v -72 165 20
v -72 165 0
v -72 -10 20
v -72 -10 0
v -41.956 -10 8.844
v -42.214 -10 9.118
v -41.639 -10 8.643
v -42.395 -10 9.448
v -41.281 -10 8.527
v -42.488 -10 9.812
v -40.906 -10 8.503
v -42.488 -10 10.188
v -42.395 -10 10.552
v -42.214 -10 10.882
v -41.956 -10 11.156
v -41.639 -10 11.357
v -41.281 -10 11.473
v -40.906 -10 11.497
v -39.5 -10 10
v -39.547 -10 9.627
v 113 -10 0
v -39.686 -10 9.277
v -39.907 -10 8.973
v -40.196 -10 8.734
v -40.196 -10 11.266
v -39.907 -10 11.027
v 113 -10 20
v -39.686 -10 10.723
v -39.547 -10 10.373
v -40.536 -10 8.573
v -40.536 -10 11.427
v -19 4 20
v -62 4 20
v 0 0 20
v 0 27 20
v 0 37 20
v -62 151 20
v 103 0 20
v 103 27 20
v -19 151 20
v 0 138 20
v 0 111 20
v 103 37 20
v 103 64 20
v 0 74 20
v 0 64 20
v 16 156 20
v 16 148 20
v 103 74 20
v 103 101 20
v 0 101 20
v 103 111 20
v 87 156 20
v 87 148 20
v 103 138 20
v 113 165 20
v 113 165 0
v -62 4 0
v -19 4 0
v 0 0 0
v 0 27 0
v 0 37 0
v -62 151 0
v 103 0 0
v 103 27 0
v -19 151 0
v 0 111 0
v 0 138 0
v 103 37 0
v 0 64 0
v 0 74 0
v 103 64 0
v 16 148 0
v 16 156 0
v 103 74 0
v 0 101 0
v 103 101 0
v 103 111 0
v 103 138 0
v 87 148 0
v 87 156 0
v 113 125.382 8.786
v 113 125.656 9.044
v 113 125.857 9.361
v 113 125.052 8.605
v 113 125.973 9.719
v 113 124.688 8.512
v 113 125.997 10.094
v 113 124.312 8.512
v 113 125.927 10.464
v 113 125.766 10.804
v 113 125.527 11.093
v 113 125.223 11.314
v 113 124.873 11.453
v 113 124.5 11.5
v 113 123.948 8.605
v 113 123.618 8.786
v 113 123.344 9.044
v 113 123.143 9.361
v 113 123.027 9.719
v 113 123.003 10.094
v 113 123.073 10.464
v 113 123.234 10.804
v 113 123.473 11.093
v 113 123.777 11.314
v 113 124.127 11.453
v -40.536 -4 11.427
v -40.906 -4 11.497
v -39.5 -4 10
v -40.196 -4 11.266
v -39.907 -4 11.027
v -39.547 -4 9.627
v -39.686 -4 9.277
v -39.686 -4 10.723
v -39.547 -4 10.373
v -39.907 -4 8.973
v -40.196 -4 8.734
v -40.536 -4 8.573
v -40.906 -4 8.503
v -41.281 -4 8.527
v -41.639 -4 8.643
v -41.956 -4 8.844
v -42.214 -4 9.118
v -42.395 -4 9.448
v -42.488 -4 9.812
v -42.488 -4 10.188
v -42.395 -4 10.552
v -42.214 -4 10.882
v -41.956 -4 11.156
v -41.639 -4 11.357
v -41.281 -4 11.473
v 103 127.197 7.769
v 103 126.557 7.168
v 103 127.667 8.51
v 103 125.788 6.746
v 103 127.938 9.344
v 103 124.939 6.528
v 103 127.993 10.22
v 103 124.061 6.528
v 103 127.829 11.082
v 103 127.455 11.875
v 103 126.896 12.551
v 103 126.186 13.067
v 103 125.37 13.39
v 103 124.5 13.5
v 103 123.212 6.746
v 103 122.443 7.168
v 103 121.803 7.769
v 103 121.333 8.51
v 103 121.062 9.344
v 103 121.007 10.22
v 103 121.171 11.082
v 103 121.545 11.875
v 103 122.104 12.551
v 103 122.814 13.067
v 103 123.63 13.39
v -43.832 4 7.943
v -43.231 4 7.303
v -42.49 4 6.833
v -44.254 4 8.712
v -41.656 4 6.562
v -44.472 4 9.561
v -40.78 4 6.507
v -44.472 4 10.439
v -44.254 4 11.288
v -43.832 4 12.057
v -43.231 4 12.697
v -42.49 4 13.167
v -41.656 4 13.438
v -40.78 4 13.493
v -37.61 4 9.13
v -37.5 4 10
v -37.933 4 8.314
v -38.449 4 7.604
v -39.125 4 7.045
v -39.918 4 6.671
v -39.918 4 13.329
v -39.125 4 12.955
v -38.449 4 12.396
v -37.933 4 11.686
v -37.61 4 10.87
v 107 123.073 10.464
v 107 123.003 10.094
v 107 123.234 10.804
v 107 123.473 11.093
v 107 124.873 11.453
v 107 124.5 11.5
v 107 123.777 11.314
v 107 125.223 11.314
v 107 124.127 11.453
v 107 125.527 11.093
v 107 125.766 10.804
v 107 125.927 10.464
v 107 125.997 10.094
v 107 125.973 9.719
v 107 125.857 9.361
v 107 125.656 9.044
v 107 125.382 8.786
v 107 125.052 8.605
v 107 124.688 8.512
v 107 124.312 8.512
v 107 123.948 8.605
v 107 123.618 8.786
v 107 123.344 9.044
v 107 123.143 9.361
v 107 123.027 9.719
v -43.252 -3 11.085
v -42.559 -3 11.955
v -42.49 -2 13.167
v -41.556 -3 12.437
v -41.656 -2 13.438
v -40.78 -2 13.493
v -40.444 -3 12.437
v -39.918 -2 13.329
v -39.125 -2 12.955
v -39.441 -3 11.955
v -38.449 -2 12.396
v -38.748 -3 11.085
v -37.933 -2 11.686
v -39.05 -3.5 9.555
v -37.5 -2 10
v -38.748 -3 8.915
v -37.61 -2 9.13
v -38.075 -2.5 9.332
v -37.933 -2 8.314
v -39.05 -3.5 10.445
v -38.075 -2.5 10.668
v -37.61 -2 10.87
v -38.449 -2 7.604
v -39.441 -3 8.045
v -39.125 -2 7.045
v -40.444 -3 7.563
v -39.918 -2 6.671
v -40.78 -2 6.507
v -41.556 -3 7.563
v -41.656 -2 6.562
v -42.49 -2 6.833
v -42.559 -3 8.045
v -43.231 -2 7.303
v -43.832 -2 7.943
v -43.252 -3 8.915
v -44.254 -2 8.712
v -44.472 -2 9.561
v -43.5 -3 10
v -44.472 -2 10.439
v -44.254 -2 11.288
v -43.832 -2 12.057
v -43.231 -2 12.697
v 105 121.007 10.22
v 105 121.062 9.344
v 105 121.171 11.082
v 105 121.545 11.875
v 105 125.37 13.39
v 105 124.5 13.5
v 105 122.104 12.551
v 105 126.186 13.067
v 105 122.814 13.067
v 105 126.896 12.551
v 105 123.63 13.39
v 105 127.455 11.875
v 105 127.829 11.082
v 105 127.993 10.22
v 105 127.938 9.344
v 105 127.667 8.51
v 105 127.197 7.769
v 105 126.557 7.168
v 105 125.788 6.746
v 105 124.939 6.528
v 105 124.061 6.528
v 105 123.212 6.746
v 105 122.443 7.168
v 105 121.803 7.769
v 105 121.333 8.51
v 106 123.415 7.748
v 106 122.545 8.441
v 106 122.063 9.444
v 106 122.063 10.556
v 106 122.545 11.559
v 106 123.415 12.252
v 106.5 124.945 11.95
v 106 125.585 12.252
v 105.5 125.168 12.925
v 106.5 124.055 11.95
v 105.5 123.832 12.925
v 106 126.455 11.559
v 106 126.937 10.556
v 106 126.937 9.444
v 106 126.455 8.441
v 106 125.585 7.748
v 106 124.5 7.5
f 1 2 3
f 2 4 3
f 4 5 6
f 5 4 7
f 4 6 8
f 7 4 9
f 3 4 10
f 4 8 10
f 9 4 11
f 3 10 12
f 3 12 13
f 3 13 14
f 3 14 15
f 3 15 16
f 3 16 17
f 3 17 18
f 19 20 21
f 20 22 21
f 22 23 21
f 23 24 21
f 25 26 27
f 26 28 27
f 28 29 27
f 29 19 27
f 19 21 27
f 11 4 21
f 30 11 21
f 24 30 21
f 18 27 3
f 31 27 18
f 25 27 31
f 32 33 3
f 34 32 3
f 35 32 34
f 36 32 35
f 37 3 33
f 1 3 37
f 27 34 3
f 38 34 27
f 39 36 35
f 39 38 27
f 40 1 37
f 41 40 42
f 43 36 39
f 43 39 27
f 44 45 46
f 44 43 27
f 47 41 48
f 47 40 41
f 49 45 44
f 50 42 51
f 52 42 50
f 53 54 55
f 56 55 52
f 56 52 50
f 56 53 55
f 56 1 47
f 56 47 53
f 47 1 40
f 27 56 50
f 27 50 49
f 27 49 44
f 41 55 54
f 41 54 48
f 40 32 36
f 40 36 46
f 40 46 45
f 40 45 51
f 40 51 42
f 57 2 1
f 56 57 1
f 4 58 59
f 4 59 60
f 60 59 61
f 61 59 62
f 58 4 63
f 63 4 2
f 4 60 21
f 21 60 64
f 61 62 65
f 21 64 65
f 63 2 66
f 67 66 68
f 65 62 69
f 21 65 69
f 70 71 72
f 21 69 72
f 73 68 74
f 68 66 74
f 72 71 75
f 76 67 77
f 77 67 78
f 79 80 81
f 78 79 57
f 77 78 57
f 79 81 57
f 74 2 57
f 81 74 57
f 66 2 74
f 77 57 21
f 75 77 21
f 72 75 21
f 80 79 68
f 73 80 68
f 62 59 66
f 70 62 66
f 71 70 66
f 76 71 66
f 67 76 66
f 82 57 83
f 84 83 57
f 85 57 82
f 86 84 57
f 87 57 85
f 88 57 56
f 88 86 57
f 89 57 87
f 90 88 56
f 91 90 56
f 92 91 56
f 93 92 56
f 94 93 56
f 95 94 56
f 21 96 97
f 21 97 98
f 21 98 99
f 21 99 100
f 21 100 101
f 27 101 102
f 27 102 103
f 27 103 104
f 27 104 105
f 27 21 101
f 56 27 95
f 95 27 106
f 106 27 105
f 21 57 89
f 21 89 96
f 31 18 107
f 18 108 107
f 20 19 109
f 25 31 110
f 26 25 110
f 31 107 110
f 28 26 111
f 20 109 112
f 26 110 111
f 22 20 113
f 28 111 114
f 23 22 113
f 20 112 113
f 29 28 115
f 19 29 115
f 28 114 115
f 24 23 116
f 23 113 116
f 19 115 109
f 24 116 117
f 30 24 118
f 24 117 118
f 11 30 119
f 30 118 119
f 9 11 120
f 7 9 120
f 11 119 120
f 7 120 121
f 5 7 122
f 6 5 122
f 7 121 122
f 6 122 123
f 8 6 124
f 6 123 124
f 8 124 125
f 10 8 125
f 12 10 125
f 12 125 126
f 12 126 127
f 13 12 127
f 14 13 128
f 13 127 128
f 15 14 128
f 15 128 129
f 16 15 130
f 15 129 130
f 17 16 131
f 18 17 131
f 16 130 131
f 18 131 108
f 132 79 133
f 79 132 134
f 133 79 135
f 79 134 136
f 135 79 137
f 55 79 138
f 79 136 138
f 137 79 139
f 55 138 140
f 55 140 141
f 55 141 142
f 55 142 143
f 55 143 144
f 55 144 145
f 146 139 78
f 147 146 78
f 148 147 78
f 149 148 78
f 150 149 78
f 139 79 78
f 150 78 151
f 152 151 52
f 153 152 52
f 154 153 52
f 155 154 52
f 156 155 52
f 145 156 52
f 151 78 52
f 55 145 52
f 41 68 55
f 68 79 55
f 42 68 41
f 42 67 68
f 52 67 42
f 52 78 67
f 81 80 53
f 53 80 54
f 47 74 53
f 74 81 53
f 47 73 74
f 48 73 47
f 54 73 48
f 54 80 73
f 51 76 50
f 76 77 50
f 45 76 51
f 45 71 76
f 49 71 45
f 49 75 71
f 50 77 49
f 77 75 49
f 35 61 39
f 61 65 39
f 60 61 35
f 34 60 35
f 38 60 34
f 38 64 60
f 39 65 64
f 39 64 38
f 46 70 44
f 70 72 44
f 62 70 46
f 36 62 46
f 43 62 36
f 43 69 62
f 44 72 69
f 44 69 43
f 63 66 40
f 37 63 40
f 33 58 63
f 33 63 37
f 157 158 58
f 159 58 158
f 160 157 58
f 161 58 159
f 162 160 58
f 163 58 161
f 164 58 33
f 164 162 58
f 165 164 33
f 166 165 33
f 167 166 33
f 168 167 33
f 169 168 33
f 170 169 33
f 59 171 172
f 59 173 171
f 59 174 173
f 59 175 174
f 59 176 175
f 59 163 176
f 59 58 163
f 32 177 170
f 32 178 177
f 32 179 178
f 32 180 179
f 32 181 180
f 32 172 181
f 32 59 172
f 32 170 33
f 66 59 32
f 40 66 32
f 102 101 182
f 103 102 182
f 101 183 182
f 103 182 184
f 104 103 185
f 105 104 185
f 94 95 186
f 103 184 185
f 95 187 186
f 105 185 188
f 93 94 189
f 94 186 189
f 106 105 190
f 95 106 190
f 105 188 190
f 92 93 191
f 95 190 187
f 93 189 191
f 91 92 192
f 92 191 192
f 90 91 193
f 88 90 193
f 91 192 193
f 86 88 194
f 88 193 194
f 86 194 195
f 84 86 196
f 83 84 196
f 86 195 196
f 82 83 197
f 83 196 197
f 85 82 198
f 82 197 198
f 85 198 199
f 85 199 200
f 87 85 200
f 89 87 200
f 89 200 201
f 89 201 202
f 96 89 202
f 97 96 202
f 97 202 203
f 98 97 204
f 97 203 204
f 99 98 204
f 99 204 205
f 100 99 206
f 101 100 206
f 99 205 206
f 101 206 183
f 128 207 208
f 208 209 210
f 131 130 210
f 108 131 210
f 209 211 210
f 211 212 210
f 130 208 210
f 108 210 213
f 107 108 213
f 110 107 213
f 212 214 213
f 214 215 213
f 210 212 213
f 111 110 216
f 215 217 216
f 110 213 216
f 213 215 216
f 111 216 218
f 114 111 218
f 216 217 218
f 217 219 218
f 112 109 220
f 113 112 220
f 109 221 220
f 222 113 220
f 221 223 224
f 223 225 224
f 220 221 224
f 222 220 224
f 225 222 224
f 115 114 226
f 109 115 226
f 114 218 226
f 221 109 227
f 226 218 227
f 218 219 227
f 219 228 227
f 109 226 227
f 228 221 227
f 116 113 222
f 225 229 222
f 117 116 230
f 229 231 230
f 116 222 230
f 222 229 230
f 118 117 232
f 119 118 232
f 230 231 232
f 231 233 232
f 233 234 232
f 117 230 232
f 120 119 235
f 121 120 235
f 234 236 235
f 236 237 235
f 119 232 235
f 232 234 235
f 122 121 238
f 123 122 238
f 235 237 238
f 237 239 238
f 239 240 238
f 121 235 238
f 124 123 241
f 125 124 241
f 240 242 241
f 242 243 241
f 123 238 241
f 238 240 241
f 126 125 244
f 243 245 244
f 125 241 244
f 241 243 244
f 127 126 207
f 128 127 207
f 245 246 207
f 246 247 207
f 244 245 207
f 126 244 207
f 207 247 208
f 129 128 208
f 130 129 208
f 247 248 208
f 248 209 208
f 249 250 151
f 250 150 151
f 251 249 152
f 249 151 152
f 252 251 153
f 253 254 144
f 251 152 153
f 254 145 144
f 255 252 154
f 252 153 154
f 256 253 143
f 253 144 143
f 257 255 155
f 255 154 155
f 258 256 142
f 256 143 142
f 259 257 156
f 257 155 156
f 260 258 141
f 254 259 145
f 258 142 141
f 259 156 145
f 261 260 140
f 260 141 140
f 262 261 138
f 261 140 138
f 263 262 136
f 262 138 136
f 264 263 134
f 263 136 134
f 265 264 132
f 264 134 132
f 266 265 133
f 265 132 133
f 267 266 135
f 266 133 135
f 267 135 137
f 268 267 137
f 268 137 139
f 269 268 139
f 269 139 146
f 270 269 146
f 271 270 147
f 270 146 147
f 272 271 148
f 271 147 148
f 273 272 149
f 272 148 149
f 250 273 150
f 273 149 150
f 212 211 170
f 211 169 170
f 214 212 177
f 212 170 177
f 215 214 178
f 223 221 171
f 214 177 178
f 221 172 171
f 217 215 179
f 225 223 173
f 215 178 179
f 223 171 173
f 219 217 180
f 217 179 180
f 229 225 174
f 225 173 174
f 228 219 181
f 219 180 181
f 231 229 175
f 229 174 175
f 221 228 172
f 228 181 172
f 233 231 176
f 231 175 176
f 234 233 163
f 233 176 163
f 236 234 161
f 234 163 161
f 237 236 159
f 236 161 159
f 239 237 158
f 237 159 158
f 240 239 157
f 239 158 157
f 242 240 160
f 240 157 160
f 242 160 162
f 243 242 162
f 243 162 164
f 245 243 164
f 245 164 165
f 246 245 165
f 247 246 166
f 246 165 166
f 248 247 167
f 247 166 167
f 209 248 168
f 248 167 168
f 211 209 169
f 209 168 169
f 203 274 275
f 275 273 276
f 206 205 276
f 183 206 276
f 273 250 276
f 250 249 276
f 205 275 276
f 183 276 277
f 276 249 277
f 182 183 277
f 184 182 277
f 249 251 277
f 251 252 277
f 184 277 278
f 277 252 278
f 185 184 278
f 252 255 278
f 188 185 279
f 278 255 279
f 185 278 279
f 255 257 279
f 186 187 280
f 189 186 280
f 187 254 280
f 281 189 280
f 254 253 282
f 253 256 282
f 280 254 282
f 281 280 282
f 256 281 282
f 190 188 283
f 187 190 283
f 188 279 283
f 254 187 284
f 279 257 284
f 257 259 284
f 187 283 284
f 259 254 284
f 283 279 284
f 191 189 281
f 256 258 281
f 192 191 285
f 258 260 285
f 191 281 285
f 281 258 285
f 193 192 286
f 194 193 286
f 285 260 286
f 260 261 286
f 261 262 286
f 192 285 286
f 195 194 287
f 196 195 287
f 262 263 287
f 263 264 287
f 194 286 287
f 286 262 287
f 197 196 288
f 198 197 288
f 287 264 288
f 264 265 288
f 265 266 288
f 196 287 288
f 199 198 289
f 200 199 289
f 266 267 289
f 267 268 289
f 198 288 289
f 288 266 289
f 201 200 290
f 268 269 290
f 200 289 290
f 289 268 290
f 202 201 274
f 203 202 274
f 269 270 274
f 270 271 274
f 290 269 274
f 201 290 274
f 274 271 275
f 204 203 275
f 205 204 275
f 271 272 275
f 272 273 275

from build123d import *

# Parameters (mm, degrees)
CYLINDER002_R         = 3.5
CYLINDER002_DEPTH     = 10
CYLINDER001_R         = 1.5
CYLINDER001_DEPTH     = 10
FUSION002_ROLL_ANGLE  = -90
FUSION001_PITCH_ANGLE = -90
BOX001_W              = 71
BOX001_H              = 8
BOX001_DEPTH          = 100
BOX_W                 = 103
BOX_H                 = 27
BOX_DEPTH             = 146
ARRAY_Y_COUNT         = 4
ARRAY_Y_PITCH         = 37
BOX005_W              = 43
BOX005_H              = 147
BOX005_DEPTH          = 20
BOX002_W              = 185
BOX002_H              = 175
BOX002_DEPTH          = 20


with BuildPart() as cylinder002:
    # Cylinder002 → Cylinder002 (new body)
    with BuildSketch(Plane(origin=(15, -5, 8), x_dir=(1, 0, 0), z_dir=(0, 0, 1))):
        Circle(CYLINDER002_R)
    extrude(amount=CYLINDER002_DEPTH)


with BuildPart() as cone:
    # Cone → Cone (revolve)
    with BuildSketch(Plane(origin=(15, -5, 6), x_dir=(1, 0, 0), z_dir=(0, -1, 0))):
        Polygon((0, 0), (1.5, 0), (3.5, 2), (0, 2), align=None)
    revolve(axis=Axis((15, -5, 6), (0, 0, 1)))


with BuildPart() as cylinder001:
    # Cylinder001 → Cylinder001 (new body)
    with BuildSketch(Plane(origin=(15, -5, 0), x_dir=(1, 0, 0), z_dir=(0, 0, 1))):
        Circle(CYLINDER001_R)
    extrude(amount=CYLINDER001_DEPTH)


with BuildPart() as fusion002:
    # Fusion002 base: copy of Cylinder001
    add(cylinder001.part)

    # Fusion002: union Cylinder002, Cone
    add(cylinder002.part)
    add(cone.part)


with BuildPart() as fusion002_1:
    # Fusion002 roll: moved
    add(fusion002.part.rotate(Axis((0, 0, 0), (1, 0, 0)), FUSION002_ROLL_ANGLE))


with BuildPart() as fusion002_2:
    # Fusion002 placement: moved
    add(fusion002_1.part.moved(Location((-56, -10, 5))))


with BuildPart() as fusion001:
    # Fusion001 base: copy of Cylinder001
    add(cylinder001.part)

    # Fusion001: union Cylinder002, Cone
    add(cylinder002.part)
    add(cone.part)


with BuildPart() as fusion001_1:
    # Fusion001 pitch: moved
    add(fusion001.part.rotate(Axis((0, 0, 0), (0, 1, 0)), FUSION001_PITCH_ANGLE))


with BuildPart() as fusion001_2:
    # Fusion001 placement: moved
    add(fusion001_1.part.moved(Location((113, 129.5, -5))))


with BuildPart() as cube001:
    # Box001 → Box001 (new body)
    with BuildSketch(Plane(origin=(16, 148, 0), x_dir=(1, 0, 0), z_dir=(0, 0, 1))):
        with Locations((35.5, 4)):
            Rectangle(BOX001_W, BOX001_H)
    extrude(amount=BOX001_DEPTH)


with BuildPart() as array:
    # Box → Box (new body)
    with BuildSketch(Plane.XY):
        with Locations((51.5, 13.5)):
            Rectangle(BOX_W, BOX_H)
    extrude(amount=BOX_DEPTH)

    # Array Y: Array ×4


with BuildPart() as array_1:
    add(array.part)
    with Locations(*[(0, i * ARRAY_Y_PITCH, 0) for i in range(1, ARRAY_Y_COUNT)]):
        add(array.part)


with BuildPart() as fusion:
    # Box005 → Box005 (new body)
    with BuildSketch(Plane(origin=(-62, 4, 0), x_dir=(1, 0, 0), z_dir=(0, 0, 1))):
        with Locations((21.5, 73.5)):
            Rectangle(BOX005_W, BOX005_H)
    extrude(amount=BOX005_DEPTH)

    # Fusion: union Fusion002, Fusion001, Cube001, Array
    add(fusion002_2.part)
    add(fusion001_2.part)
    add(cube001.part)
    add(array_1.part)


with BuildPart() as cut:
    # Box002 → Box002 (new body)
    with BuildSketch(Plane(origin=(-72, -10, 0), x_dir=(1, 0, 0), z_dir=(0, 0, 1))):
        with Locations((92.5, 87.5)):
            Rectangle(BOX002_W, BOX002_H)
    extrude(amount=BOX002_DEPTH)

    # Cut: cut Fusion
    add(fusion.part, mode=Mode.SUBTRACT)


solid = cut.part
